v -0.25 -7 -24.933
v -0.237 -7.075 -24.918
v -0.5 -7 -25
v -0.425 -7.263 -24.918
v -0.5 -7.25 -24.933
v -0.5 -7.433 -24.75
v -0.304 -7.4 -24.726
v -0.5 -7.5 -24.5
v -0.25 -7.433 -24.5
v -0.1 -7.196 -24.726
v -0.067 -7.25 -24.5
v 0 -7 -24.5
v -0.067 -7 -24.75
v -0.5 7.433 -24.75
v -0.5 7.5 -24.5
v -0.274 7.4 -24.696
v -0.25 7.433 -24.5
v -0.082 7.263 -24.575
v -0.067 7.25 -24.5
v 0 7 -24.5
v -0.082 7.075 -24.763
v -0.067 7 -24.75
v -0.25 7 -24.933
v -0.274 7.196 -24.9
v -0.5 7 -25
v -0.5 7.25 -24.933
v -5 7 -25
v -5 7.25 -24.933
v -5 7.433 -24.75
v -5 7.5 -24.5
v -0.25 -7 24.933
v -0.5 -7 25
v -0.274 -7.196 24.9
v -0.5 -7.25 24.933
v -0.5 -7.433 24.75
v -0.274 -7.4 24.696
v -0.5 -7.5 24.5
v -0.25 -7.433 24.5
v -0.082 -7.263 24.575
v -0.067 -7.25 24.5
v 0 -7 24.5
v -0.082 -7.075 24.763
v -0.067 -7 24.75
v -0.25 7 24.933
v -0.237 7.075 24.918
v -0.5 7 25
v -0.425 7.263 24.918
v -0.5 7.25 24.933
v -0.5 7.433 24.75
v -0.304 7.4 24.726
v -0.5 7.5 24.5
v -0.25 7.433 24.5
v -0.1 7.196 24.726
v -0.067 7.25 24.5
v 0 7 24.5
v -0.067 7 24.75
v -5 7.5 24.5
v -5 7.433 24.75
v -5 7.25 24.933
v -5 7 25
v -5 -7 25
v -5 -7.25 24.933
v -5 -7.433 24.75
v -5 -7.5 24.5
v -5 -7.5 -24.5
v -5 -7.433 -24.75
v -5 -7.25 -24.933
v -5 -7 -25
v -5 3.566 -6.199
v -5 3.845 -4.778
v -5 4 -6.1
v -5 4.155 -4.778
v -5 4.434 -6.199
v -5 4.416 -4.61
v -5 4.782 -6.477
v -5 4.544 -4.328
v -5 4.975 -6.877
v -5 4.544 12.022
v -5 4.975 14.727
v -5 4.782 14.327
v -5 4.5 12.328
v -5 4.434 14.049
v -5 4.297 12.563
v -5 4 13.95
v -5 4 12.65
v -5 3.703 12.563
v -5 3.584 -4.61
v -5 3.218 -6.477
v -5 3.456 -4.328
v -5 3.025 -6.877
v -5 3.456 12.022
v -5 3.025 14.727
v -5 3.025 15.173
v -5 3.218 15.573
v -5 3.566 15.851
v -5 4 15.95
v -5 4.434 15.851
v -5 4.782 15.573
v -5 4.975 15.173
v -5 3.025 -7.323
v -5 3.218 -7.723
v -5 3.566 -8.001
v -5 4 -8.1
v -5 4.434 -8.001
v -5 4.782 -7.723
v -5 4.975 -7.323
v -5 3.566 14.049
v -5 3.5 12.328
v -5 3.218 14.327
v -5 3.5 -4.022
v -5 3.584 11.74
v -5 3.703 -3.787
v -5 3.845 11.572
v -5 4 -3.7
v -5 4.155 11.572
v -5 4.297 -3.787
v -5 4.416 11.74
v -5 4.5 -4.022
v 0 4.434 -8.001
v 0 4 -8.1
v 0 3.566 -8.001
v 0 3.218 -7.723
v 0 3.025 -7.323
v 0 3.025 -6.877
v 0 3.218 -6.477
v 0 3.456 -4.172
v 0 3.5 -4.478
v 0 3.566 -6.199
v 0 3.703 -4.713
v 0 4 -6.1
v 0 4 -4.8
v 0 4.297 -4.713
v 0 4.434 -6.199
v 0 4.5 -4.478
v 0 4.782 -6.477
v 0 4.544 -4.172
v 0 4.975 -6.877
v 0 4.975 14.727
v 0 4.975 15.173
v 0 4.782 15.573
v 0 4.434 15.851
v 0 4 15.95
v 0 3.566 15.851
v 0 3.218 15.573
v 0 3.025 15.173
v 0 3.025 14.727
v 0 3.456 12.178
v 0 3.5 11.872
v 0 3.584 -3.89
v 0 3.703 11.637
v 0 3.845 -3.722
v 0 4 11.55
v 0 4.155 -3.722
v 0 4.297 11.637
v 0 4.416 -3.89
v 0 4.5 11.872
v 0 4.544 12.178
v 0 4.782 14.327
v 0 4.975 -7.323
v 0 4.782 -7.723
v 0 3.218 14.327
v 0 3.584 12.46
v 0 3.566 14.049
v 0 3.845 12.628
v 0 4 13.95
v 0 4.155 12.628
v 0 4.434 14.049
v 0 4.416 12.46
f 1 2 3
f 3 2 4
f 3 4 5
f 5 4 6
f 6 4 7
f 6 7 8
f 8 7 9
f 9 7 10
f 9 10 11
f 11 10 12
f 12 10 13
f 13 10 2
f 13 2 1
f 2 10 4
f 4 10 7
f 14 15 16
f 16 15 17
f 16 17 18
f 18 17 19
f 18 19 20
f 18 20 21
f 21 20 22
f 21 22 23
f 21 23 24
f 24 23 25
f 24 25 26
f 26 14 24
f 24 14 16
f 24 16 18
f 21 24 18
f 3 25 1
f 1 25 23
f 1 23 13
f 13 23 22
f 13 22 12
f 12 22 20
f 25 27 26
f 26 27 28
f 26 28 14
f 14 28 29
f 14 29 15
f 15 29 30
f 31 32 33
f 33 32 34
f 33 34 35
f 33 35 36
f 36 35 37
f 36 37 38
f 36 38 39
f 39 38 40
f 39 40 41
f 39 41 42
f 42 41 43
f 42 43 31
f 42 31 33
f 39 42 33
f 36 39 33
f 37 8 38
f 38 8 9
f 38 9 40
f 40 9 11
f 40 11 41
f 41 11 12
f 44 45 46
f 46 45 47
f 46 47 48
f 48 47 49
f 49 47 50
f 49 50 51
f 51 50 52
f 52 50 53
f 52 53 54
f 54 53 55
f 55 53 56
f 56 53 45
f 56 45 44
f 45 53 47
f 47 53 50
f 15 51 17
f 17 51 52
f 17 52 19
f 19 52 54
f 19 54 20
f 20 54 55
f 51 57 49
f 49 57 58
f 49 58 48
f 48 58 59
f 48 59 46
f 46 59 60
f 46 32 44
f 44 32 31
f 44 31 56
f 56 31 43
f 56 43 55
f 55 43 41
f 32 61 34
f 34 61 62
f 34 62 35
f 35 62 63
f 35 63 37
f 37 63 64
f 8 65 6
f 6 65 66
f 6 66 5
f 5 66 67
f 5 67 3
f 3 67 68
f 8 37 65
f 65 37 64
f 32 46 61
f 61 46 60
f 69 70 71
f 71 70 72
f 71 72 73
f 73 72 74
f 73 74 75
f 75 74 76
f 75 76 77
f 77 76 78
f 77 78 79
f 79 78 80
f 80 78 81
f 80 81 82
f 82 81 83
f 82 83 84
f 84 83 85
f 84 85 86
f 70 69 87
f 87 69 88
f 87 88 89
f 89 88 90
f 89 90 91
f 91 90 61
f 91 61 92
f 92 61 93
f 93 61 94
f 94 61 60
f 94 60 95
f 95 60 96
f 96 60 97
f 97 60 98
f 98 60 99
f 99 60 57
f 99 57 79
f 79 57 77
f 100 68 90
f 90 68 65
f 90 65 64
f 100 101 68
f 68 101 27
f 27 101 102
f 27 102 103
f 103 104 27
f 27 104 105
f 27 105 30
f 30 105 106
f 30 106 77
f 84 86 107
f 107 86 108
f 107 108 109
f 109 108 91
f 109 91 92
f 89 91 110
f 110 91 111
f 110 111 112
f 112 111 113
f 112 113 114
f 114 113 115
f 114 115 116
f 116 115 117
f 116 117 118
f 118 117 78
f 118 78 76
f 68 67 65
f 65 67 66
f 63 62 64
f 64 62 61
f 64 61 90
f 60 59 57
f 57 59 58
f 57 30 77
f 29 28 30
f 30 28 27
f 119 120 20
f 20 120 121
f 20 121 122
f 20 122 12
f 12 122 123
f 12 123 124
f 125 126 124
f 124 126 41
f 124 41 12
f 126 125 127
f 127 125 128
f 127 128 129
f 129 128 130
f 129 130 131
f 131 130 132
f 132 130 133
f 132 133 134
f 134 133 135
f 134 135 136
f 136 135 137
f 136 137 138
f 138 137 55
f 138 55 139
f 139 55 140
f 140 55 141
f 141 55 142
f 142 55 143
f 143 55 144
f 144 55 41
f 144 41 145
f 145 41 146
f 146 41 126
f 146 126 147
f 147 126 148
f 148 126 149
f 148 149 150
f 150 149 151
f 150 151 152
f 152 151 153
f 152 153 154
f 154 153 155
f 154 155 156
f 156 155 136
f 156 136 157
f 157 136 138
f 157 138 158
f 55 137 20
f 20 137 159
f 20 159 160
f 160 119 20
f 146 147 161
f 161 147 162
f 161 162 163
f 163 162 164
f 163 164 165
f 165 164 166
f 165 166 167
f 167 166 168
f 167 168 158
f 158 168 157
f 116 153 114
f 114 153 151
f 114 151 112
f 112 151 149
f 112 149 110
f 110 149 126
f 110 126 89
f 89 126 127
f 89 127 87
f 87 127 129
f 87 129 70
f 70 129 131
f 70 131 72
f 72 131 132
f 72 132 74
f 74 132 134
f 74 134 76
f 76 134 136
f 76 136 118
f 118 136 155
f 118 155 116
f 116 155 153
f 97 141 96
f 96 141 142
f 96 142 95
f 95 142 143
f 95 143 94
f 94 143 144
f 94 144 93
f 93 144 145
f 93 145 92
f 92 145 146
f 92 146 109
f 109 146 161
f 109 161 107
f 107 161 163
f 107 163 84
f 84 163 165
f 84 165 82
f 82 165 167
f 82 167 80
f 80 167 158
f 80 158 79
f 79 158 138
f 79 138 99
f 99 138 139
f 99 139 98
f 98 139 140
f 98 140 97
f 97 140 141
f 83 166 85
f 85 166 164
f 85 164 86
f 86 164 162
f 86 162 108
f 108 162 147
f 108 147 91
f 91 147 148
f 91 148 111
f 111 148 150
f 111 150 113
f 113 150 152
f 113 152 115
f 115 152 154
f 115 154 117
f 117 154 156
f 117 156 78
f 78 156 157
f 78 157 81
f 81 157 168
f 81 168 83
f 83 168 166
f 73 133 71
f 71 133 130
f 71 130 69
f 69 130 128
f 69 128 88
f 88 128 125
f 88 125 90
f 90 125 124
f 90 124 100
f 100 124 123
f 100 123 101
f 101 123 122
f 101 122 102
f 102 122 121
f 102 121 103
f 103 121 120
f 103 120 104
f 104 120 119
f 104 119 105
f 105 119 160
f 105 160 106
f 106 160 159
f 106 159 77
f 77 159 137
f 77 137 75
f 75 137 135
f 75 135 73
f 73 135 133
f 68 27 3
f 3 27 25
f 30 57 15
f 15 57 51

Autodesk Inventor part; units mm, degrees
ref_plane "YZ Plane" through (0, 0, 0) normal (1, 0, 0) x (0, 1, 0)
ref_plane "XZ Plane" through (0, 0, 0) normal (0, 1, 0) x (-1, 0, 0)
ref_plane "XY Plane" through (0, 0, 0) normal (0, 0, 1) x (1, 0, 0)
sketch "Sketch1" plane through (0, 0, 0) normal (1, 0, 0) x (0, 1, 0)
  line L0 (7.5, 25) -> (-7.5, 25)
  line L1 (-7.5, 25) -> (-7.5, -25)
  line L2 (-7.5, -25) -> (7.5, -25)
  line L3 (7.5, -25) -> (7.5, 25)
  point P0 (0, 0)
  dimension "d0" = 50
  dimension "d1" = 25
  dimension "d2" = 15
  dimension "d3" = 7.5
extrude "Extrusion1" add sketch "Sketch1" against normal blind 5
sketch "Sketch2" plane through (0, 0, 0) normal (1, 0, 0) x (0, 0, -1)
  circle A0 centre (-12.1, 4) radius 0.55
  circle A1 centre (-14.95, 4) radius 1
  circle A2 centre (4.25, 4) radius 0.55
  circle A3 centre (7.1, 4) radius 1
  line L0 (25, -7.5) -> (25, 7.5) projected
  line L1 (-25, 7.5) -> (-25, -7.5) projected
  line L2 (-14.95, 4) -> (7.1, 4) construction
  line L3 (-25, -7.5) -> (25, -7.5) projected
  point P0 (0, 0)
  dimension "d6" = 2
  dimension "d7" = 2
  dimension "d8" = 1.1
  dimension "d9" = 1.1
  dimension "d11" = 2.85
  dimension "d13" = 2.85
  dimension "d14" = 10.05
  dimension "d15" = 11.5
  dimension "d19" = 16.35
extrude "Extrusion2" cut sketch "Sketch2" against normal up to surface (5 mm away)
fillet "Fillet1" radius 0.5 8 edges at (0, 0, 25) (0, 7.5, 0) (0, 0, -25) (0, -7.5, 0) (-2.5, 7.5, 25) (-2.5, -7.5, 25) (-2.5, 7.5, -25) (-2.5, -7.5, -25)
properties part number "Backplate"
